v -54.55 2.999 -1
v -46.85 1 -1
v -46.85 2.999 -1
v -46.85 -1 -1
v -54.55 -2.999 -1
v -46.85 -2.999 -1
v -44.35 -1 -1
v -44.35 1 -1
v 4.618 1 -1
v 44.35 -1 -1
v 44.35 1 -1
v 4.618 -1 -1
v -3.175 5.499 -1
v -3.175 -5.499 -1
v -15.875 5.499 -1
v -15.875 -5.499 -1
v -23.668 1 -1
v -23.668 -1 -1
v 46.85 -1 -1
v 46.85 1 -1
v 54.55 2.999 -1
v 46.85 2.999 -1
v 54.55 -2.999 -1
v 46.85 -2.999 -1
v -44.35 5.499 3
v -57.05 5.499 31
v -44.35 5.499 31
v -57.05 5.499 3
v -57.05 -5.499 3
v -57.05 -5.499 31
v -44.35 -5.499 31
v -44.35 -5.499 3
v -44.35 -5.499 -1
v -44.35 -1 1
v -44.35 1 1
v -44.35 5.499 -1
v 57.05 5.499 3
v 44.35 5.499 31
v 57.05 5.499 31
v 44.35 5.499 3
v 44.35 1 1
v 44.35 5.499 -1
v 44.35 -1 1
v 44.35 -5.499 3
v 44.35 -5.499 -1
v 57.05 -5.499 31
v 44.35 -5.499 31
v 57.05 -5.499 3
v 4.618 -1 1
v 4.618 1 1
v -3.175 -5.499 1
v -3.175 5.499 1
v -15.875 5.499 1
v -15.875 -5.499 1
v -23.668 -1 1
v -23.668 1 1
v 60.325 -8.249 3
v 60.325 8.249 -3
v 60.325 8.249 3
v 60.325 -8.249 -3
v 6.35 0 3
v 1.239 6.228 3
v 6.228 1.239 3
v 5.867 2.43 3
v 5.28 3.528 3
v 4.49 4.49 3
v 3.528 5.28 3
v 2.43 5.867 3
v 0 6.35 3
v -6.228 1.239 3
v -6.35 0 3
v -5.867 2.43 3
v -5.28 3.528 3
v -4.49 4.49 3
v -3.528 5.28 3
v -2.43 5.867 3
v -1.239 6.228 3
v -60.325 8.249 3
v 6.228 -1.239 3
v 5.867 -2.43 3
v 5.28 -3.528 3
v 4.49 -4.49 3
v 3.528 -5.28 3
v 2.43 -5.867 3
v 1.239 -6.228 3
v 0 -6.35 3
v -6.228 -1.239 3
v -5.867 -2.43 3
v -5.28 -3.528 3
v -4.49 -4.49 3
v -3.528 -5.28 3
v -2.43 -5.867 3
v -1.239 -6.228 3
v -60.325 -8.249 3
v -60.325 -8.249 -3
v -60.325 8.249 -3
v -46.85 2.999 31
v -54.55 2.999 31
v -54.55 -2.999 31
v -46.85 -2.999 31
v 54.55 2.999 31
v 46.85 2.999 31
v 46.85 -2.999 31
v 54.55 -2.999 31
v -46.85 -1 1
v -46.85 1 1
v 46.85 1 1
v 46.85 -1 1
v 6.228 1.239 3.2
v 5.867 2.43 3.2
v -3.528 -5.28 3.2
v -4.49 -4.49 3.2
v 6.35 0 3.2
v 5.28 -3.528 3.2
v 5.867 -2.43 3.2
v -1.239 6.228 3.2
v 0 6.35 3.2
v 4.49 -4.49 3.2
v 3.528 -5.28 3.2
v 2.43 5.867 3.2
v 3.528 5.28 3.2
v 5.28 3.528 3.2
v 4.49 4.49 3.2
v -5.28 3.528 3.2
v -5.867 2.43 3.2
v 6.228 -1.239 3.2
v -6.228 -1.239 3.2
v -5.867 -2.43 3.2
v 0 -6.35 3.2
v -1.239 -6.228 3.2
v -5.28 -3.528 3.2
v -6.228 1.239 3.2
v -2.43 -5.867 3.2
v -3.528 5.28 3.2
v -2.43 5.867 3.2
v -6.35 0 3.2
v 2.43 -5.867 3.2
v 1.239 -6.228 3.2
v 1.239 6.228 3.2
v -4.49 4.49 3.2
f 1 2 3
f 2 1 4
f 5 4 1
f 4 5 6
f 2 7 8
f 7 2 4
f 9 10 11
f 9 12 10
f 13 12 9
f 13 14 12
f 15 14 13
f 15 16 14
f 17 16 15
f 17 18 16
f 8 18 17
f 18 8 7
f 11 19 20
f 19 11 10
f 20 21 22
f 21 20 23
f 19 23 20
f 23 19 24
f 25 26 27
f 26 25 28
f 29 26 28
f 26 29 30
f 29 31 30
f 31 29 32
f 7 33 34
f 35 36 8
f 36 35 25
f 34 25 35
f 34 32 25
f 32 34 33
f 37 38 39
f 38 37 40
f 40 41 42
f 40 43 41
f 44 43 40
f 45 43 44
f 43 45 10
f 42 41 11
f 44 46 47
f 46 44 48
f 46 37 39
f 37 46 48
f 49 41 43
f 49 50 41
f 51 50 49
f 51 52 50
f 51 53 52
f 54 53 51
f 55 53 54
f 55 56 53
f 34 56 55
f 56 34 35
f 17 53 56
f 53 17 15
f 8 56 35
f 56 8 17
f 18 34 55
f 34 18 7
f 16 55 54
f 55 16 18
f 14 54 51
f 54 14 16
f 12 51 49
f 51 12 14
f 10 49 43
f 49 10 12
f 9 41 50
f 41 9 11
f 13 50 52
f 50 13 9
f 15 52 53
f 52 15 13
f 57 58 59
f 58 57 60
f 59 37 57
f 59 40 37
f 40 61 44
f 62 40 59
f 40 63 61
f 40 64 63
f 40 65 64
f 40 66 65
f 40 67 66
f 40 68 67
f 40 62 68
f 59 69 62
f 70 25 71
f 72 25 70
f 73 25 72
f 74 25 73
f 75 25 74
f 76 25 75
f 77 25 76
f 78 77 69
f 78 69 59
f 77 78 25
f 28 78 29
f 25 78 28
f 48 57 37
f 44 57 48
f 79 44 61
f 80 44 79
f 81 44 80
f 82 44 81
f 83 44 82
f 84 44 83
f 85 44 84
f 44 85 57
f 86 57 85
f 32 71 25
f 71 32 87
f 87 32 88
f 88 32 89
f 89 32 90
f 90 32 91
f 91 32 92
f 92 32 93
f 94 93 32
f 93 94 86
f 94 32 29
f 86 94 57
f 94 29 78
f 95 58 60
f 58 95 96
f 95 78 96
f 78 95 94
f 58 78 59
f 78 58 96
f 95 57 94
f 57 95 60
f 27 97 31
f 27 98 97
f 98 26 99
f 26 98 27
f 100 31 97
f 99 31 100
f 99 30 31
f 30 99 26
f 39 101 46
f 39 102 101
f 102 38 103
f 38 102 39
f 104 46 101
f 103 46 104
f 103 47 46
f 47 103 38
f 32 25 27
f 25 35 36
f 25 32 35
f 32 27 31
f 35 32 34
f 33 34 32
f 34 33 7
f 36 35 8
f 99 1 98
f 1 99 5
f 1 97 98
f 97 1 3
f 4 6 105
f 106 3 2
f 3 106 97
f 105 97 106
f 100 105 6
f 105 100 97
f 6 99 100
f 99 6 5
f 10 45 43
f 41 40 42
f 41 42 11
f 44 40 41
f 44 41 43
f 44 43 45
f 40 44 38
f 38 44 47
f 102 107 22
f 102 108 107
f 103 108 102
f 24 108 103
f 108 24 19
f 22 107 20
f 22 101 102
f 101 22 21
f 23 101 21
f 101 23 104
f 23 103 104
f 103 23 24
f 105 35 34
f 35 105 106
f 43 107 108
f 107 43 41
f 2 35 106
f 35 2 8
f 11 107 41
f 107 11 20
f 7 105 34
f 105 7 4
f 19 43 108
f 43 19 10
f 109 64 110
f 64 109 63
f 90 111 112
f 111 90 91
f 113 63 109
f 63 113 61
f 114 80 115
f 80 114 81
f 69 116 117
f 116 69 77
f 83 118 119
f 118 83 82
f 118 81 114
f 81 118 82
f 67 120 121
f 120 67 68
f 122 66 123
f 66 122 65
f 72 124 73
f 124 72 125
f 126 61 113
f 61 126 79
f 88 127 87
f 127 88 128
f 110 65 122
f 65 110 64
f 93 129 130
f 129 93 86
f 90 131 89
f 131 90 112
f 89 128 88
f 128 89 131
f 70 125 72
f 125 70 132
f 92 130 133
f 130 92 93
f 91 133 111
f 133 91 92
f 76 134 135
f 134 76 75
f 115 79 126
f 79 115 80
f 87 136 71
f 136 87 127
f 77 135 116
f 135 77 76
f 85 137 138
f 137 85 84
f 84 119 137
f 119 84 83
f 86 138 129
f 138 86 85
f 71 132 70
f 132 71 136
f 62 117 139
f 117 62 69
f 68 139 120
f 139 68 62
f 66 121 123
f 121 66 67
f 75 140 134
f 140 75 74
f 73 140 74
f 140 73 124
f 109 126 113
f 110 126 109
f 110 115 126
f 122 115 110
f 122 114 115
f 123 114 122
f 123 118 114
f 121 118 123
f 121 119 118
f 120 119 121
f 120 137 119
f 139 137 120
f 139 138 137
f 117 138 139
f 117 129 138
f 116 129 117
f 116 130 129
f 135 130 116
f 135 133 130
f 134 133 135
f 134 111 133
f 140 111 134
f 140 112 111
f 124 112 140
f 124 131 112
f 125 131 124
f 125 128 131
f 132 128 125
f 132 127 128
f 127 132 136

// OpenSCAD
//
//    PumpConcept - V 0.1
//    Copyright (C) 2021  Robert L. Read
//
//    This program is free software: you can redistribute it and/or modify
//    it under the terms of the GNU General Public License as published by
//    the Free Software Foundation, either version 3 of the License, or
//    (at your option) any later version.
//
//    This program is distributed in the hope that it will be useful,
//    but WITHOUT ANY WARRANTY; without even the implied warranty of
//    MERCHANTABILITY or FITNESS FOR A PARTICULAR PURPOSE.  See the
//    GNU General Public License for more details.
//
//    You should have received a copy of the GNU General Public License
//    along with this program.  If not, see <https://www.gnu.org/licenses/>.

// This is an experimental attempt to design a ferrofluid pump with no moving parts.abs
// I will attempt to make this as a linear extrusion of the chamber space, and then
// subtract that from the solid shape.abs
// I am attempting to build the simplest apparatus that can be used to test the 
// hypothesis that oscillating the magnitude (not direction) of the field can 
// create flow.

CircularMagnetDiameter = 12.7; // We use a half-inch magnet
CMD = CircularMagnetDiameter;
ChamberHeightZ = 2.0; // We will make a 2.0 mm high chamber
WellHeightZ = 4.0;
EqTriHeight = sqrt(3)/2;
SideLength = sqrt(3) * CMD;
InscribedRadius = sqrt(3)/6;
ChamberWidth = 1.0 * EqTriHeight * CMD;
ChamberLength = 1.0 * CMD;
ChannelLength = 7 * CMD; // we want a nice long chamber to be able to see the
// pumping effect visually.
ChannelWidth = 2.0;

TriangularLength = 0.7 * CMD;
ThickChamberLength = CMD / 2;

// Now I will union together two triangles, a rectangle, and long
// channel for the purpose of building this.

 module regular_polygon(order = 4, r=1){
     angles=[ for (i = [0:order-1]) i*(360/order) ];
     coords=[ for (th=angles) [r*cos(th), r*sin(th)] ];
     polygon(coords);
 }

module chamber() {
    union() {
        translate([0,0,WellHeightZ - ChamberHeightZ/2])
        linear_extrude(height = WellHeightZ*2, center = true, slices = 20, scale = 1.0, $fn = 16)
        union() {
            translate([-ChamberLength/2+-(ChannelLength/2)+.1,0,0])
            square([ChamberLength,ChamberWidth],true);
        
            translate([+ChamberLength/2+(ChannelLength/2)-.1,0,0])
            square([ChamberLength,ChamberWidth],true);
        }
        linear_extrude(height = ChamberHeightZ, center = true, slices = 20, scale = 1.0, $fn = 16)
        union() {
        translate([0,0,0])
        square([ChannelLength,ChannelWidth],true);
        translate([0,0,0])
        color("red")
        translate([-(ChamberLength/2 + SideLength*EqTriHeight/6),0,0])
            square([ChamberLength,ChamberWidth],true);
            
        regular_polygon(order = 3, r=CMD/2);
            
        color("blue")
        translate([-(3*ChamberLength/2 + 0*EqTriHeight * SideLength / 3),0,0])
        rotate([0,0,180])
        regular_polygon(order = 3, r=CMD/2);
        }
    }
}

module twoColumns() {
          columnThickness = 5;
difference() {
  union() {
      f = 8;

      color("red")
     translate([0,0,WellHeightZ*f/2 - ChamberHeightZ/2])
     linear_extrude(height = WellHeightZ*f, center = true, slices = 20, scale = 1.0, $fn = 16)
     union() {
            translate([-ChamberLength/2+-(ChannelLength/2)+.1,0,0])
            difference() {
                square([ChamberLength,ChamberWidth],true);
                square([ChamberLength-columnThickness,ChamberWidth-columnThickness],true);
            }
        
            translate([+ChamberLength/2+(ChannelLength/2)-.1,0,0])
            difference() {
                square([ChamberLength,ChamberWidth],true);
                square([ChamberLength-columnThickness,ChamberWidth-columnThickness],true);
           }
     }
  }
  // here we subtract out the long channel
   linear_extrude(height = ChamberHeightZ, center = true, slices = 20, scale = 1.0, $fn = 16)
   translate([0,0,0])
   square([ChannelLength+columnThickness*2 +.1,ChannelWidth],true);
  }
}

module referenceCircle() {
    circle(r = CMD/2);
}

module holdingSlab() {
    translate([0,0,0])
    cube([ChannelLength+ChamberLength*2.5,ChamberWidth*1.5,ChamberHeightZ*3],true);
}

union() {
    color("red")
    translate([0,0,ChamberHeightZ*3/2])
    linear_extrude(height = 0.4, center = true, slices = 20, scale = 1.0, $fn = 32)
    referenceCircle();

    difference() {
        holdingSlab();
        chamber();
    }  
    twoColumns();
}
